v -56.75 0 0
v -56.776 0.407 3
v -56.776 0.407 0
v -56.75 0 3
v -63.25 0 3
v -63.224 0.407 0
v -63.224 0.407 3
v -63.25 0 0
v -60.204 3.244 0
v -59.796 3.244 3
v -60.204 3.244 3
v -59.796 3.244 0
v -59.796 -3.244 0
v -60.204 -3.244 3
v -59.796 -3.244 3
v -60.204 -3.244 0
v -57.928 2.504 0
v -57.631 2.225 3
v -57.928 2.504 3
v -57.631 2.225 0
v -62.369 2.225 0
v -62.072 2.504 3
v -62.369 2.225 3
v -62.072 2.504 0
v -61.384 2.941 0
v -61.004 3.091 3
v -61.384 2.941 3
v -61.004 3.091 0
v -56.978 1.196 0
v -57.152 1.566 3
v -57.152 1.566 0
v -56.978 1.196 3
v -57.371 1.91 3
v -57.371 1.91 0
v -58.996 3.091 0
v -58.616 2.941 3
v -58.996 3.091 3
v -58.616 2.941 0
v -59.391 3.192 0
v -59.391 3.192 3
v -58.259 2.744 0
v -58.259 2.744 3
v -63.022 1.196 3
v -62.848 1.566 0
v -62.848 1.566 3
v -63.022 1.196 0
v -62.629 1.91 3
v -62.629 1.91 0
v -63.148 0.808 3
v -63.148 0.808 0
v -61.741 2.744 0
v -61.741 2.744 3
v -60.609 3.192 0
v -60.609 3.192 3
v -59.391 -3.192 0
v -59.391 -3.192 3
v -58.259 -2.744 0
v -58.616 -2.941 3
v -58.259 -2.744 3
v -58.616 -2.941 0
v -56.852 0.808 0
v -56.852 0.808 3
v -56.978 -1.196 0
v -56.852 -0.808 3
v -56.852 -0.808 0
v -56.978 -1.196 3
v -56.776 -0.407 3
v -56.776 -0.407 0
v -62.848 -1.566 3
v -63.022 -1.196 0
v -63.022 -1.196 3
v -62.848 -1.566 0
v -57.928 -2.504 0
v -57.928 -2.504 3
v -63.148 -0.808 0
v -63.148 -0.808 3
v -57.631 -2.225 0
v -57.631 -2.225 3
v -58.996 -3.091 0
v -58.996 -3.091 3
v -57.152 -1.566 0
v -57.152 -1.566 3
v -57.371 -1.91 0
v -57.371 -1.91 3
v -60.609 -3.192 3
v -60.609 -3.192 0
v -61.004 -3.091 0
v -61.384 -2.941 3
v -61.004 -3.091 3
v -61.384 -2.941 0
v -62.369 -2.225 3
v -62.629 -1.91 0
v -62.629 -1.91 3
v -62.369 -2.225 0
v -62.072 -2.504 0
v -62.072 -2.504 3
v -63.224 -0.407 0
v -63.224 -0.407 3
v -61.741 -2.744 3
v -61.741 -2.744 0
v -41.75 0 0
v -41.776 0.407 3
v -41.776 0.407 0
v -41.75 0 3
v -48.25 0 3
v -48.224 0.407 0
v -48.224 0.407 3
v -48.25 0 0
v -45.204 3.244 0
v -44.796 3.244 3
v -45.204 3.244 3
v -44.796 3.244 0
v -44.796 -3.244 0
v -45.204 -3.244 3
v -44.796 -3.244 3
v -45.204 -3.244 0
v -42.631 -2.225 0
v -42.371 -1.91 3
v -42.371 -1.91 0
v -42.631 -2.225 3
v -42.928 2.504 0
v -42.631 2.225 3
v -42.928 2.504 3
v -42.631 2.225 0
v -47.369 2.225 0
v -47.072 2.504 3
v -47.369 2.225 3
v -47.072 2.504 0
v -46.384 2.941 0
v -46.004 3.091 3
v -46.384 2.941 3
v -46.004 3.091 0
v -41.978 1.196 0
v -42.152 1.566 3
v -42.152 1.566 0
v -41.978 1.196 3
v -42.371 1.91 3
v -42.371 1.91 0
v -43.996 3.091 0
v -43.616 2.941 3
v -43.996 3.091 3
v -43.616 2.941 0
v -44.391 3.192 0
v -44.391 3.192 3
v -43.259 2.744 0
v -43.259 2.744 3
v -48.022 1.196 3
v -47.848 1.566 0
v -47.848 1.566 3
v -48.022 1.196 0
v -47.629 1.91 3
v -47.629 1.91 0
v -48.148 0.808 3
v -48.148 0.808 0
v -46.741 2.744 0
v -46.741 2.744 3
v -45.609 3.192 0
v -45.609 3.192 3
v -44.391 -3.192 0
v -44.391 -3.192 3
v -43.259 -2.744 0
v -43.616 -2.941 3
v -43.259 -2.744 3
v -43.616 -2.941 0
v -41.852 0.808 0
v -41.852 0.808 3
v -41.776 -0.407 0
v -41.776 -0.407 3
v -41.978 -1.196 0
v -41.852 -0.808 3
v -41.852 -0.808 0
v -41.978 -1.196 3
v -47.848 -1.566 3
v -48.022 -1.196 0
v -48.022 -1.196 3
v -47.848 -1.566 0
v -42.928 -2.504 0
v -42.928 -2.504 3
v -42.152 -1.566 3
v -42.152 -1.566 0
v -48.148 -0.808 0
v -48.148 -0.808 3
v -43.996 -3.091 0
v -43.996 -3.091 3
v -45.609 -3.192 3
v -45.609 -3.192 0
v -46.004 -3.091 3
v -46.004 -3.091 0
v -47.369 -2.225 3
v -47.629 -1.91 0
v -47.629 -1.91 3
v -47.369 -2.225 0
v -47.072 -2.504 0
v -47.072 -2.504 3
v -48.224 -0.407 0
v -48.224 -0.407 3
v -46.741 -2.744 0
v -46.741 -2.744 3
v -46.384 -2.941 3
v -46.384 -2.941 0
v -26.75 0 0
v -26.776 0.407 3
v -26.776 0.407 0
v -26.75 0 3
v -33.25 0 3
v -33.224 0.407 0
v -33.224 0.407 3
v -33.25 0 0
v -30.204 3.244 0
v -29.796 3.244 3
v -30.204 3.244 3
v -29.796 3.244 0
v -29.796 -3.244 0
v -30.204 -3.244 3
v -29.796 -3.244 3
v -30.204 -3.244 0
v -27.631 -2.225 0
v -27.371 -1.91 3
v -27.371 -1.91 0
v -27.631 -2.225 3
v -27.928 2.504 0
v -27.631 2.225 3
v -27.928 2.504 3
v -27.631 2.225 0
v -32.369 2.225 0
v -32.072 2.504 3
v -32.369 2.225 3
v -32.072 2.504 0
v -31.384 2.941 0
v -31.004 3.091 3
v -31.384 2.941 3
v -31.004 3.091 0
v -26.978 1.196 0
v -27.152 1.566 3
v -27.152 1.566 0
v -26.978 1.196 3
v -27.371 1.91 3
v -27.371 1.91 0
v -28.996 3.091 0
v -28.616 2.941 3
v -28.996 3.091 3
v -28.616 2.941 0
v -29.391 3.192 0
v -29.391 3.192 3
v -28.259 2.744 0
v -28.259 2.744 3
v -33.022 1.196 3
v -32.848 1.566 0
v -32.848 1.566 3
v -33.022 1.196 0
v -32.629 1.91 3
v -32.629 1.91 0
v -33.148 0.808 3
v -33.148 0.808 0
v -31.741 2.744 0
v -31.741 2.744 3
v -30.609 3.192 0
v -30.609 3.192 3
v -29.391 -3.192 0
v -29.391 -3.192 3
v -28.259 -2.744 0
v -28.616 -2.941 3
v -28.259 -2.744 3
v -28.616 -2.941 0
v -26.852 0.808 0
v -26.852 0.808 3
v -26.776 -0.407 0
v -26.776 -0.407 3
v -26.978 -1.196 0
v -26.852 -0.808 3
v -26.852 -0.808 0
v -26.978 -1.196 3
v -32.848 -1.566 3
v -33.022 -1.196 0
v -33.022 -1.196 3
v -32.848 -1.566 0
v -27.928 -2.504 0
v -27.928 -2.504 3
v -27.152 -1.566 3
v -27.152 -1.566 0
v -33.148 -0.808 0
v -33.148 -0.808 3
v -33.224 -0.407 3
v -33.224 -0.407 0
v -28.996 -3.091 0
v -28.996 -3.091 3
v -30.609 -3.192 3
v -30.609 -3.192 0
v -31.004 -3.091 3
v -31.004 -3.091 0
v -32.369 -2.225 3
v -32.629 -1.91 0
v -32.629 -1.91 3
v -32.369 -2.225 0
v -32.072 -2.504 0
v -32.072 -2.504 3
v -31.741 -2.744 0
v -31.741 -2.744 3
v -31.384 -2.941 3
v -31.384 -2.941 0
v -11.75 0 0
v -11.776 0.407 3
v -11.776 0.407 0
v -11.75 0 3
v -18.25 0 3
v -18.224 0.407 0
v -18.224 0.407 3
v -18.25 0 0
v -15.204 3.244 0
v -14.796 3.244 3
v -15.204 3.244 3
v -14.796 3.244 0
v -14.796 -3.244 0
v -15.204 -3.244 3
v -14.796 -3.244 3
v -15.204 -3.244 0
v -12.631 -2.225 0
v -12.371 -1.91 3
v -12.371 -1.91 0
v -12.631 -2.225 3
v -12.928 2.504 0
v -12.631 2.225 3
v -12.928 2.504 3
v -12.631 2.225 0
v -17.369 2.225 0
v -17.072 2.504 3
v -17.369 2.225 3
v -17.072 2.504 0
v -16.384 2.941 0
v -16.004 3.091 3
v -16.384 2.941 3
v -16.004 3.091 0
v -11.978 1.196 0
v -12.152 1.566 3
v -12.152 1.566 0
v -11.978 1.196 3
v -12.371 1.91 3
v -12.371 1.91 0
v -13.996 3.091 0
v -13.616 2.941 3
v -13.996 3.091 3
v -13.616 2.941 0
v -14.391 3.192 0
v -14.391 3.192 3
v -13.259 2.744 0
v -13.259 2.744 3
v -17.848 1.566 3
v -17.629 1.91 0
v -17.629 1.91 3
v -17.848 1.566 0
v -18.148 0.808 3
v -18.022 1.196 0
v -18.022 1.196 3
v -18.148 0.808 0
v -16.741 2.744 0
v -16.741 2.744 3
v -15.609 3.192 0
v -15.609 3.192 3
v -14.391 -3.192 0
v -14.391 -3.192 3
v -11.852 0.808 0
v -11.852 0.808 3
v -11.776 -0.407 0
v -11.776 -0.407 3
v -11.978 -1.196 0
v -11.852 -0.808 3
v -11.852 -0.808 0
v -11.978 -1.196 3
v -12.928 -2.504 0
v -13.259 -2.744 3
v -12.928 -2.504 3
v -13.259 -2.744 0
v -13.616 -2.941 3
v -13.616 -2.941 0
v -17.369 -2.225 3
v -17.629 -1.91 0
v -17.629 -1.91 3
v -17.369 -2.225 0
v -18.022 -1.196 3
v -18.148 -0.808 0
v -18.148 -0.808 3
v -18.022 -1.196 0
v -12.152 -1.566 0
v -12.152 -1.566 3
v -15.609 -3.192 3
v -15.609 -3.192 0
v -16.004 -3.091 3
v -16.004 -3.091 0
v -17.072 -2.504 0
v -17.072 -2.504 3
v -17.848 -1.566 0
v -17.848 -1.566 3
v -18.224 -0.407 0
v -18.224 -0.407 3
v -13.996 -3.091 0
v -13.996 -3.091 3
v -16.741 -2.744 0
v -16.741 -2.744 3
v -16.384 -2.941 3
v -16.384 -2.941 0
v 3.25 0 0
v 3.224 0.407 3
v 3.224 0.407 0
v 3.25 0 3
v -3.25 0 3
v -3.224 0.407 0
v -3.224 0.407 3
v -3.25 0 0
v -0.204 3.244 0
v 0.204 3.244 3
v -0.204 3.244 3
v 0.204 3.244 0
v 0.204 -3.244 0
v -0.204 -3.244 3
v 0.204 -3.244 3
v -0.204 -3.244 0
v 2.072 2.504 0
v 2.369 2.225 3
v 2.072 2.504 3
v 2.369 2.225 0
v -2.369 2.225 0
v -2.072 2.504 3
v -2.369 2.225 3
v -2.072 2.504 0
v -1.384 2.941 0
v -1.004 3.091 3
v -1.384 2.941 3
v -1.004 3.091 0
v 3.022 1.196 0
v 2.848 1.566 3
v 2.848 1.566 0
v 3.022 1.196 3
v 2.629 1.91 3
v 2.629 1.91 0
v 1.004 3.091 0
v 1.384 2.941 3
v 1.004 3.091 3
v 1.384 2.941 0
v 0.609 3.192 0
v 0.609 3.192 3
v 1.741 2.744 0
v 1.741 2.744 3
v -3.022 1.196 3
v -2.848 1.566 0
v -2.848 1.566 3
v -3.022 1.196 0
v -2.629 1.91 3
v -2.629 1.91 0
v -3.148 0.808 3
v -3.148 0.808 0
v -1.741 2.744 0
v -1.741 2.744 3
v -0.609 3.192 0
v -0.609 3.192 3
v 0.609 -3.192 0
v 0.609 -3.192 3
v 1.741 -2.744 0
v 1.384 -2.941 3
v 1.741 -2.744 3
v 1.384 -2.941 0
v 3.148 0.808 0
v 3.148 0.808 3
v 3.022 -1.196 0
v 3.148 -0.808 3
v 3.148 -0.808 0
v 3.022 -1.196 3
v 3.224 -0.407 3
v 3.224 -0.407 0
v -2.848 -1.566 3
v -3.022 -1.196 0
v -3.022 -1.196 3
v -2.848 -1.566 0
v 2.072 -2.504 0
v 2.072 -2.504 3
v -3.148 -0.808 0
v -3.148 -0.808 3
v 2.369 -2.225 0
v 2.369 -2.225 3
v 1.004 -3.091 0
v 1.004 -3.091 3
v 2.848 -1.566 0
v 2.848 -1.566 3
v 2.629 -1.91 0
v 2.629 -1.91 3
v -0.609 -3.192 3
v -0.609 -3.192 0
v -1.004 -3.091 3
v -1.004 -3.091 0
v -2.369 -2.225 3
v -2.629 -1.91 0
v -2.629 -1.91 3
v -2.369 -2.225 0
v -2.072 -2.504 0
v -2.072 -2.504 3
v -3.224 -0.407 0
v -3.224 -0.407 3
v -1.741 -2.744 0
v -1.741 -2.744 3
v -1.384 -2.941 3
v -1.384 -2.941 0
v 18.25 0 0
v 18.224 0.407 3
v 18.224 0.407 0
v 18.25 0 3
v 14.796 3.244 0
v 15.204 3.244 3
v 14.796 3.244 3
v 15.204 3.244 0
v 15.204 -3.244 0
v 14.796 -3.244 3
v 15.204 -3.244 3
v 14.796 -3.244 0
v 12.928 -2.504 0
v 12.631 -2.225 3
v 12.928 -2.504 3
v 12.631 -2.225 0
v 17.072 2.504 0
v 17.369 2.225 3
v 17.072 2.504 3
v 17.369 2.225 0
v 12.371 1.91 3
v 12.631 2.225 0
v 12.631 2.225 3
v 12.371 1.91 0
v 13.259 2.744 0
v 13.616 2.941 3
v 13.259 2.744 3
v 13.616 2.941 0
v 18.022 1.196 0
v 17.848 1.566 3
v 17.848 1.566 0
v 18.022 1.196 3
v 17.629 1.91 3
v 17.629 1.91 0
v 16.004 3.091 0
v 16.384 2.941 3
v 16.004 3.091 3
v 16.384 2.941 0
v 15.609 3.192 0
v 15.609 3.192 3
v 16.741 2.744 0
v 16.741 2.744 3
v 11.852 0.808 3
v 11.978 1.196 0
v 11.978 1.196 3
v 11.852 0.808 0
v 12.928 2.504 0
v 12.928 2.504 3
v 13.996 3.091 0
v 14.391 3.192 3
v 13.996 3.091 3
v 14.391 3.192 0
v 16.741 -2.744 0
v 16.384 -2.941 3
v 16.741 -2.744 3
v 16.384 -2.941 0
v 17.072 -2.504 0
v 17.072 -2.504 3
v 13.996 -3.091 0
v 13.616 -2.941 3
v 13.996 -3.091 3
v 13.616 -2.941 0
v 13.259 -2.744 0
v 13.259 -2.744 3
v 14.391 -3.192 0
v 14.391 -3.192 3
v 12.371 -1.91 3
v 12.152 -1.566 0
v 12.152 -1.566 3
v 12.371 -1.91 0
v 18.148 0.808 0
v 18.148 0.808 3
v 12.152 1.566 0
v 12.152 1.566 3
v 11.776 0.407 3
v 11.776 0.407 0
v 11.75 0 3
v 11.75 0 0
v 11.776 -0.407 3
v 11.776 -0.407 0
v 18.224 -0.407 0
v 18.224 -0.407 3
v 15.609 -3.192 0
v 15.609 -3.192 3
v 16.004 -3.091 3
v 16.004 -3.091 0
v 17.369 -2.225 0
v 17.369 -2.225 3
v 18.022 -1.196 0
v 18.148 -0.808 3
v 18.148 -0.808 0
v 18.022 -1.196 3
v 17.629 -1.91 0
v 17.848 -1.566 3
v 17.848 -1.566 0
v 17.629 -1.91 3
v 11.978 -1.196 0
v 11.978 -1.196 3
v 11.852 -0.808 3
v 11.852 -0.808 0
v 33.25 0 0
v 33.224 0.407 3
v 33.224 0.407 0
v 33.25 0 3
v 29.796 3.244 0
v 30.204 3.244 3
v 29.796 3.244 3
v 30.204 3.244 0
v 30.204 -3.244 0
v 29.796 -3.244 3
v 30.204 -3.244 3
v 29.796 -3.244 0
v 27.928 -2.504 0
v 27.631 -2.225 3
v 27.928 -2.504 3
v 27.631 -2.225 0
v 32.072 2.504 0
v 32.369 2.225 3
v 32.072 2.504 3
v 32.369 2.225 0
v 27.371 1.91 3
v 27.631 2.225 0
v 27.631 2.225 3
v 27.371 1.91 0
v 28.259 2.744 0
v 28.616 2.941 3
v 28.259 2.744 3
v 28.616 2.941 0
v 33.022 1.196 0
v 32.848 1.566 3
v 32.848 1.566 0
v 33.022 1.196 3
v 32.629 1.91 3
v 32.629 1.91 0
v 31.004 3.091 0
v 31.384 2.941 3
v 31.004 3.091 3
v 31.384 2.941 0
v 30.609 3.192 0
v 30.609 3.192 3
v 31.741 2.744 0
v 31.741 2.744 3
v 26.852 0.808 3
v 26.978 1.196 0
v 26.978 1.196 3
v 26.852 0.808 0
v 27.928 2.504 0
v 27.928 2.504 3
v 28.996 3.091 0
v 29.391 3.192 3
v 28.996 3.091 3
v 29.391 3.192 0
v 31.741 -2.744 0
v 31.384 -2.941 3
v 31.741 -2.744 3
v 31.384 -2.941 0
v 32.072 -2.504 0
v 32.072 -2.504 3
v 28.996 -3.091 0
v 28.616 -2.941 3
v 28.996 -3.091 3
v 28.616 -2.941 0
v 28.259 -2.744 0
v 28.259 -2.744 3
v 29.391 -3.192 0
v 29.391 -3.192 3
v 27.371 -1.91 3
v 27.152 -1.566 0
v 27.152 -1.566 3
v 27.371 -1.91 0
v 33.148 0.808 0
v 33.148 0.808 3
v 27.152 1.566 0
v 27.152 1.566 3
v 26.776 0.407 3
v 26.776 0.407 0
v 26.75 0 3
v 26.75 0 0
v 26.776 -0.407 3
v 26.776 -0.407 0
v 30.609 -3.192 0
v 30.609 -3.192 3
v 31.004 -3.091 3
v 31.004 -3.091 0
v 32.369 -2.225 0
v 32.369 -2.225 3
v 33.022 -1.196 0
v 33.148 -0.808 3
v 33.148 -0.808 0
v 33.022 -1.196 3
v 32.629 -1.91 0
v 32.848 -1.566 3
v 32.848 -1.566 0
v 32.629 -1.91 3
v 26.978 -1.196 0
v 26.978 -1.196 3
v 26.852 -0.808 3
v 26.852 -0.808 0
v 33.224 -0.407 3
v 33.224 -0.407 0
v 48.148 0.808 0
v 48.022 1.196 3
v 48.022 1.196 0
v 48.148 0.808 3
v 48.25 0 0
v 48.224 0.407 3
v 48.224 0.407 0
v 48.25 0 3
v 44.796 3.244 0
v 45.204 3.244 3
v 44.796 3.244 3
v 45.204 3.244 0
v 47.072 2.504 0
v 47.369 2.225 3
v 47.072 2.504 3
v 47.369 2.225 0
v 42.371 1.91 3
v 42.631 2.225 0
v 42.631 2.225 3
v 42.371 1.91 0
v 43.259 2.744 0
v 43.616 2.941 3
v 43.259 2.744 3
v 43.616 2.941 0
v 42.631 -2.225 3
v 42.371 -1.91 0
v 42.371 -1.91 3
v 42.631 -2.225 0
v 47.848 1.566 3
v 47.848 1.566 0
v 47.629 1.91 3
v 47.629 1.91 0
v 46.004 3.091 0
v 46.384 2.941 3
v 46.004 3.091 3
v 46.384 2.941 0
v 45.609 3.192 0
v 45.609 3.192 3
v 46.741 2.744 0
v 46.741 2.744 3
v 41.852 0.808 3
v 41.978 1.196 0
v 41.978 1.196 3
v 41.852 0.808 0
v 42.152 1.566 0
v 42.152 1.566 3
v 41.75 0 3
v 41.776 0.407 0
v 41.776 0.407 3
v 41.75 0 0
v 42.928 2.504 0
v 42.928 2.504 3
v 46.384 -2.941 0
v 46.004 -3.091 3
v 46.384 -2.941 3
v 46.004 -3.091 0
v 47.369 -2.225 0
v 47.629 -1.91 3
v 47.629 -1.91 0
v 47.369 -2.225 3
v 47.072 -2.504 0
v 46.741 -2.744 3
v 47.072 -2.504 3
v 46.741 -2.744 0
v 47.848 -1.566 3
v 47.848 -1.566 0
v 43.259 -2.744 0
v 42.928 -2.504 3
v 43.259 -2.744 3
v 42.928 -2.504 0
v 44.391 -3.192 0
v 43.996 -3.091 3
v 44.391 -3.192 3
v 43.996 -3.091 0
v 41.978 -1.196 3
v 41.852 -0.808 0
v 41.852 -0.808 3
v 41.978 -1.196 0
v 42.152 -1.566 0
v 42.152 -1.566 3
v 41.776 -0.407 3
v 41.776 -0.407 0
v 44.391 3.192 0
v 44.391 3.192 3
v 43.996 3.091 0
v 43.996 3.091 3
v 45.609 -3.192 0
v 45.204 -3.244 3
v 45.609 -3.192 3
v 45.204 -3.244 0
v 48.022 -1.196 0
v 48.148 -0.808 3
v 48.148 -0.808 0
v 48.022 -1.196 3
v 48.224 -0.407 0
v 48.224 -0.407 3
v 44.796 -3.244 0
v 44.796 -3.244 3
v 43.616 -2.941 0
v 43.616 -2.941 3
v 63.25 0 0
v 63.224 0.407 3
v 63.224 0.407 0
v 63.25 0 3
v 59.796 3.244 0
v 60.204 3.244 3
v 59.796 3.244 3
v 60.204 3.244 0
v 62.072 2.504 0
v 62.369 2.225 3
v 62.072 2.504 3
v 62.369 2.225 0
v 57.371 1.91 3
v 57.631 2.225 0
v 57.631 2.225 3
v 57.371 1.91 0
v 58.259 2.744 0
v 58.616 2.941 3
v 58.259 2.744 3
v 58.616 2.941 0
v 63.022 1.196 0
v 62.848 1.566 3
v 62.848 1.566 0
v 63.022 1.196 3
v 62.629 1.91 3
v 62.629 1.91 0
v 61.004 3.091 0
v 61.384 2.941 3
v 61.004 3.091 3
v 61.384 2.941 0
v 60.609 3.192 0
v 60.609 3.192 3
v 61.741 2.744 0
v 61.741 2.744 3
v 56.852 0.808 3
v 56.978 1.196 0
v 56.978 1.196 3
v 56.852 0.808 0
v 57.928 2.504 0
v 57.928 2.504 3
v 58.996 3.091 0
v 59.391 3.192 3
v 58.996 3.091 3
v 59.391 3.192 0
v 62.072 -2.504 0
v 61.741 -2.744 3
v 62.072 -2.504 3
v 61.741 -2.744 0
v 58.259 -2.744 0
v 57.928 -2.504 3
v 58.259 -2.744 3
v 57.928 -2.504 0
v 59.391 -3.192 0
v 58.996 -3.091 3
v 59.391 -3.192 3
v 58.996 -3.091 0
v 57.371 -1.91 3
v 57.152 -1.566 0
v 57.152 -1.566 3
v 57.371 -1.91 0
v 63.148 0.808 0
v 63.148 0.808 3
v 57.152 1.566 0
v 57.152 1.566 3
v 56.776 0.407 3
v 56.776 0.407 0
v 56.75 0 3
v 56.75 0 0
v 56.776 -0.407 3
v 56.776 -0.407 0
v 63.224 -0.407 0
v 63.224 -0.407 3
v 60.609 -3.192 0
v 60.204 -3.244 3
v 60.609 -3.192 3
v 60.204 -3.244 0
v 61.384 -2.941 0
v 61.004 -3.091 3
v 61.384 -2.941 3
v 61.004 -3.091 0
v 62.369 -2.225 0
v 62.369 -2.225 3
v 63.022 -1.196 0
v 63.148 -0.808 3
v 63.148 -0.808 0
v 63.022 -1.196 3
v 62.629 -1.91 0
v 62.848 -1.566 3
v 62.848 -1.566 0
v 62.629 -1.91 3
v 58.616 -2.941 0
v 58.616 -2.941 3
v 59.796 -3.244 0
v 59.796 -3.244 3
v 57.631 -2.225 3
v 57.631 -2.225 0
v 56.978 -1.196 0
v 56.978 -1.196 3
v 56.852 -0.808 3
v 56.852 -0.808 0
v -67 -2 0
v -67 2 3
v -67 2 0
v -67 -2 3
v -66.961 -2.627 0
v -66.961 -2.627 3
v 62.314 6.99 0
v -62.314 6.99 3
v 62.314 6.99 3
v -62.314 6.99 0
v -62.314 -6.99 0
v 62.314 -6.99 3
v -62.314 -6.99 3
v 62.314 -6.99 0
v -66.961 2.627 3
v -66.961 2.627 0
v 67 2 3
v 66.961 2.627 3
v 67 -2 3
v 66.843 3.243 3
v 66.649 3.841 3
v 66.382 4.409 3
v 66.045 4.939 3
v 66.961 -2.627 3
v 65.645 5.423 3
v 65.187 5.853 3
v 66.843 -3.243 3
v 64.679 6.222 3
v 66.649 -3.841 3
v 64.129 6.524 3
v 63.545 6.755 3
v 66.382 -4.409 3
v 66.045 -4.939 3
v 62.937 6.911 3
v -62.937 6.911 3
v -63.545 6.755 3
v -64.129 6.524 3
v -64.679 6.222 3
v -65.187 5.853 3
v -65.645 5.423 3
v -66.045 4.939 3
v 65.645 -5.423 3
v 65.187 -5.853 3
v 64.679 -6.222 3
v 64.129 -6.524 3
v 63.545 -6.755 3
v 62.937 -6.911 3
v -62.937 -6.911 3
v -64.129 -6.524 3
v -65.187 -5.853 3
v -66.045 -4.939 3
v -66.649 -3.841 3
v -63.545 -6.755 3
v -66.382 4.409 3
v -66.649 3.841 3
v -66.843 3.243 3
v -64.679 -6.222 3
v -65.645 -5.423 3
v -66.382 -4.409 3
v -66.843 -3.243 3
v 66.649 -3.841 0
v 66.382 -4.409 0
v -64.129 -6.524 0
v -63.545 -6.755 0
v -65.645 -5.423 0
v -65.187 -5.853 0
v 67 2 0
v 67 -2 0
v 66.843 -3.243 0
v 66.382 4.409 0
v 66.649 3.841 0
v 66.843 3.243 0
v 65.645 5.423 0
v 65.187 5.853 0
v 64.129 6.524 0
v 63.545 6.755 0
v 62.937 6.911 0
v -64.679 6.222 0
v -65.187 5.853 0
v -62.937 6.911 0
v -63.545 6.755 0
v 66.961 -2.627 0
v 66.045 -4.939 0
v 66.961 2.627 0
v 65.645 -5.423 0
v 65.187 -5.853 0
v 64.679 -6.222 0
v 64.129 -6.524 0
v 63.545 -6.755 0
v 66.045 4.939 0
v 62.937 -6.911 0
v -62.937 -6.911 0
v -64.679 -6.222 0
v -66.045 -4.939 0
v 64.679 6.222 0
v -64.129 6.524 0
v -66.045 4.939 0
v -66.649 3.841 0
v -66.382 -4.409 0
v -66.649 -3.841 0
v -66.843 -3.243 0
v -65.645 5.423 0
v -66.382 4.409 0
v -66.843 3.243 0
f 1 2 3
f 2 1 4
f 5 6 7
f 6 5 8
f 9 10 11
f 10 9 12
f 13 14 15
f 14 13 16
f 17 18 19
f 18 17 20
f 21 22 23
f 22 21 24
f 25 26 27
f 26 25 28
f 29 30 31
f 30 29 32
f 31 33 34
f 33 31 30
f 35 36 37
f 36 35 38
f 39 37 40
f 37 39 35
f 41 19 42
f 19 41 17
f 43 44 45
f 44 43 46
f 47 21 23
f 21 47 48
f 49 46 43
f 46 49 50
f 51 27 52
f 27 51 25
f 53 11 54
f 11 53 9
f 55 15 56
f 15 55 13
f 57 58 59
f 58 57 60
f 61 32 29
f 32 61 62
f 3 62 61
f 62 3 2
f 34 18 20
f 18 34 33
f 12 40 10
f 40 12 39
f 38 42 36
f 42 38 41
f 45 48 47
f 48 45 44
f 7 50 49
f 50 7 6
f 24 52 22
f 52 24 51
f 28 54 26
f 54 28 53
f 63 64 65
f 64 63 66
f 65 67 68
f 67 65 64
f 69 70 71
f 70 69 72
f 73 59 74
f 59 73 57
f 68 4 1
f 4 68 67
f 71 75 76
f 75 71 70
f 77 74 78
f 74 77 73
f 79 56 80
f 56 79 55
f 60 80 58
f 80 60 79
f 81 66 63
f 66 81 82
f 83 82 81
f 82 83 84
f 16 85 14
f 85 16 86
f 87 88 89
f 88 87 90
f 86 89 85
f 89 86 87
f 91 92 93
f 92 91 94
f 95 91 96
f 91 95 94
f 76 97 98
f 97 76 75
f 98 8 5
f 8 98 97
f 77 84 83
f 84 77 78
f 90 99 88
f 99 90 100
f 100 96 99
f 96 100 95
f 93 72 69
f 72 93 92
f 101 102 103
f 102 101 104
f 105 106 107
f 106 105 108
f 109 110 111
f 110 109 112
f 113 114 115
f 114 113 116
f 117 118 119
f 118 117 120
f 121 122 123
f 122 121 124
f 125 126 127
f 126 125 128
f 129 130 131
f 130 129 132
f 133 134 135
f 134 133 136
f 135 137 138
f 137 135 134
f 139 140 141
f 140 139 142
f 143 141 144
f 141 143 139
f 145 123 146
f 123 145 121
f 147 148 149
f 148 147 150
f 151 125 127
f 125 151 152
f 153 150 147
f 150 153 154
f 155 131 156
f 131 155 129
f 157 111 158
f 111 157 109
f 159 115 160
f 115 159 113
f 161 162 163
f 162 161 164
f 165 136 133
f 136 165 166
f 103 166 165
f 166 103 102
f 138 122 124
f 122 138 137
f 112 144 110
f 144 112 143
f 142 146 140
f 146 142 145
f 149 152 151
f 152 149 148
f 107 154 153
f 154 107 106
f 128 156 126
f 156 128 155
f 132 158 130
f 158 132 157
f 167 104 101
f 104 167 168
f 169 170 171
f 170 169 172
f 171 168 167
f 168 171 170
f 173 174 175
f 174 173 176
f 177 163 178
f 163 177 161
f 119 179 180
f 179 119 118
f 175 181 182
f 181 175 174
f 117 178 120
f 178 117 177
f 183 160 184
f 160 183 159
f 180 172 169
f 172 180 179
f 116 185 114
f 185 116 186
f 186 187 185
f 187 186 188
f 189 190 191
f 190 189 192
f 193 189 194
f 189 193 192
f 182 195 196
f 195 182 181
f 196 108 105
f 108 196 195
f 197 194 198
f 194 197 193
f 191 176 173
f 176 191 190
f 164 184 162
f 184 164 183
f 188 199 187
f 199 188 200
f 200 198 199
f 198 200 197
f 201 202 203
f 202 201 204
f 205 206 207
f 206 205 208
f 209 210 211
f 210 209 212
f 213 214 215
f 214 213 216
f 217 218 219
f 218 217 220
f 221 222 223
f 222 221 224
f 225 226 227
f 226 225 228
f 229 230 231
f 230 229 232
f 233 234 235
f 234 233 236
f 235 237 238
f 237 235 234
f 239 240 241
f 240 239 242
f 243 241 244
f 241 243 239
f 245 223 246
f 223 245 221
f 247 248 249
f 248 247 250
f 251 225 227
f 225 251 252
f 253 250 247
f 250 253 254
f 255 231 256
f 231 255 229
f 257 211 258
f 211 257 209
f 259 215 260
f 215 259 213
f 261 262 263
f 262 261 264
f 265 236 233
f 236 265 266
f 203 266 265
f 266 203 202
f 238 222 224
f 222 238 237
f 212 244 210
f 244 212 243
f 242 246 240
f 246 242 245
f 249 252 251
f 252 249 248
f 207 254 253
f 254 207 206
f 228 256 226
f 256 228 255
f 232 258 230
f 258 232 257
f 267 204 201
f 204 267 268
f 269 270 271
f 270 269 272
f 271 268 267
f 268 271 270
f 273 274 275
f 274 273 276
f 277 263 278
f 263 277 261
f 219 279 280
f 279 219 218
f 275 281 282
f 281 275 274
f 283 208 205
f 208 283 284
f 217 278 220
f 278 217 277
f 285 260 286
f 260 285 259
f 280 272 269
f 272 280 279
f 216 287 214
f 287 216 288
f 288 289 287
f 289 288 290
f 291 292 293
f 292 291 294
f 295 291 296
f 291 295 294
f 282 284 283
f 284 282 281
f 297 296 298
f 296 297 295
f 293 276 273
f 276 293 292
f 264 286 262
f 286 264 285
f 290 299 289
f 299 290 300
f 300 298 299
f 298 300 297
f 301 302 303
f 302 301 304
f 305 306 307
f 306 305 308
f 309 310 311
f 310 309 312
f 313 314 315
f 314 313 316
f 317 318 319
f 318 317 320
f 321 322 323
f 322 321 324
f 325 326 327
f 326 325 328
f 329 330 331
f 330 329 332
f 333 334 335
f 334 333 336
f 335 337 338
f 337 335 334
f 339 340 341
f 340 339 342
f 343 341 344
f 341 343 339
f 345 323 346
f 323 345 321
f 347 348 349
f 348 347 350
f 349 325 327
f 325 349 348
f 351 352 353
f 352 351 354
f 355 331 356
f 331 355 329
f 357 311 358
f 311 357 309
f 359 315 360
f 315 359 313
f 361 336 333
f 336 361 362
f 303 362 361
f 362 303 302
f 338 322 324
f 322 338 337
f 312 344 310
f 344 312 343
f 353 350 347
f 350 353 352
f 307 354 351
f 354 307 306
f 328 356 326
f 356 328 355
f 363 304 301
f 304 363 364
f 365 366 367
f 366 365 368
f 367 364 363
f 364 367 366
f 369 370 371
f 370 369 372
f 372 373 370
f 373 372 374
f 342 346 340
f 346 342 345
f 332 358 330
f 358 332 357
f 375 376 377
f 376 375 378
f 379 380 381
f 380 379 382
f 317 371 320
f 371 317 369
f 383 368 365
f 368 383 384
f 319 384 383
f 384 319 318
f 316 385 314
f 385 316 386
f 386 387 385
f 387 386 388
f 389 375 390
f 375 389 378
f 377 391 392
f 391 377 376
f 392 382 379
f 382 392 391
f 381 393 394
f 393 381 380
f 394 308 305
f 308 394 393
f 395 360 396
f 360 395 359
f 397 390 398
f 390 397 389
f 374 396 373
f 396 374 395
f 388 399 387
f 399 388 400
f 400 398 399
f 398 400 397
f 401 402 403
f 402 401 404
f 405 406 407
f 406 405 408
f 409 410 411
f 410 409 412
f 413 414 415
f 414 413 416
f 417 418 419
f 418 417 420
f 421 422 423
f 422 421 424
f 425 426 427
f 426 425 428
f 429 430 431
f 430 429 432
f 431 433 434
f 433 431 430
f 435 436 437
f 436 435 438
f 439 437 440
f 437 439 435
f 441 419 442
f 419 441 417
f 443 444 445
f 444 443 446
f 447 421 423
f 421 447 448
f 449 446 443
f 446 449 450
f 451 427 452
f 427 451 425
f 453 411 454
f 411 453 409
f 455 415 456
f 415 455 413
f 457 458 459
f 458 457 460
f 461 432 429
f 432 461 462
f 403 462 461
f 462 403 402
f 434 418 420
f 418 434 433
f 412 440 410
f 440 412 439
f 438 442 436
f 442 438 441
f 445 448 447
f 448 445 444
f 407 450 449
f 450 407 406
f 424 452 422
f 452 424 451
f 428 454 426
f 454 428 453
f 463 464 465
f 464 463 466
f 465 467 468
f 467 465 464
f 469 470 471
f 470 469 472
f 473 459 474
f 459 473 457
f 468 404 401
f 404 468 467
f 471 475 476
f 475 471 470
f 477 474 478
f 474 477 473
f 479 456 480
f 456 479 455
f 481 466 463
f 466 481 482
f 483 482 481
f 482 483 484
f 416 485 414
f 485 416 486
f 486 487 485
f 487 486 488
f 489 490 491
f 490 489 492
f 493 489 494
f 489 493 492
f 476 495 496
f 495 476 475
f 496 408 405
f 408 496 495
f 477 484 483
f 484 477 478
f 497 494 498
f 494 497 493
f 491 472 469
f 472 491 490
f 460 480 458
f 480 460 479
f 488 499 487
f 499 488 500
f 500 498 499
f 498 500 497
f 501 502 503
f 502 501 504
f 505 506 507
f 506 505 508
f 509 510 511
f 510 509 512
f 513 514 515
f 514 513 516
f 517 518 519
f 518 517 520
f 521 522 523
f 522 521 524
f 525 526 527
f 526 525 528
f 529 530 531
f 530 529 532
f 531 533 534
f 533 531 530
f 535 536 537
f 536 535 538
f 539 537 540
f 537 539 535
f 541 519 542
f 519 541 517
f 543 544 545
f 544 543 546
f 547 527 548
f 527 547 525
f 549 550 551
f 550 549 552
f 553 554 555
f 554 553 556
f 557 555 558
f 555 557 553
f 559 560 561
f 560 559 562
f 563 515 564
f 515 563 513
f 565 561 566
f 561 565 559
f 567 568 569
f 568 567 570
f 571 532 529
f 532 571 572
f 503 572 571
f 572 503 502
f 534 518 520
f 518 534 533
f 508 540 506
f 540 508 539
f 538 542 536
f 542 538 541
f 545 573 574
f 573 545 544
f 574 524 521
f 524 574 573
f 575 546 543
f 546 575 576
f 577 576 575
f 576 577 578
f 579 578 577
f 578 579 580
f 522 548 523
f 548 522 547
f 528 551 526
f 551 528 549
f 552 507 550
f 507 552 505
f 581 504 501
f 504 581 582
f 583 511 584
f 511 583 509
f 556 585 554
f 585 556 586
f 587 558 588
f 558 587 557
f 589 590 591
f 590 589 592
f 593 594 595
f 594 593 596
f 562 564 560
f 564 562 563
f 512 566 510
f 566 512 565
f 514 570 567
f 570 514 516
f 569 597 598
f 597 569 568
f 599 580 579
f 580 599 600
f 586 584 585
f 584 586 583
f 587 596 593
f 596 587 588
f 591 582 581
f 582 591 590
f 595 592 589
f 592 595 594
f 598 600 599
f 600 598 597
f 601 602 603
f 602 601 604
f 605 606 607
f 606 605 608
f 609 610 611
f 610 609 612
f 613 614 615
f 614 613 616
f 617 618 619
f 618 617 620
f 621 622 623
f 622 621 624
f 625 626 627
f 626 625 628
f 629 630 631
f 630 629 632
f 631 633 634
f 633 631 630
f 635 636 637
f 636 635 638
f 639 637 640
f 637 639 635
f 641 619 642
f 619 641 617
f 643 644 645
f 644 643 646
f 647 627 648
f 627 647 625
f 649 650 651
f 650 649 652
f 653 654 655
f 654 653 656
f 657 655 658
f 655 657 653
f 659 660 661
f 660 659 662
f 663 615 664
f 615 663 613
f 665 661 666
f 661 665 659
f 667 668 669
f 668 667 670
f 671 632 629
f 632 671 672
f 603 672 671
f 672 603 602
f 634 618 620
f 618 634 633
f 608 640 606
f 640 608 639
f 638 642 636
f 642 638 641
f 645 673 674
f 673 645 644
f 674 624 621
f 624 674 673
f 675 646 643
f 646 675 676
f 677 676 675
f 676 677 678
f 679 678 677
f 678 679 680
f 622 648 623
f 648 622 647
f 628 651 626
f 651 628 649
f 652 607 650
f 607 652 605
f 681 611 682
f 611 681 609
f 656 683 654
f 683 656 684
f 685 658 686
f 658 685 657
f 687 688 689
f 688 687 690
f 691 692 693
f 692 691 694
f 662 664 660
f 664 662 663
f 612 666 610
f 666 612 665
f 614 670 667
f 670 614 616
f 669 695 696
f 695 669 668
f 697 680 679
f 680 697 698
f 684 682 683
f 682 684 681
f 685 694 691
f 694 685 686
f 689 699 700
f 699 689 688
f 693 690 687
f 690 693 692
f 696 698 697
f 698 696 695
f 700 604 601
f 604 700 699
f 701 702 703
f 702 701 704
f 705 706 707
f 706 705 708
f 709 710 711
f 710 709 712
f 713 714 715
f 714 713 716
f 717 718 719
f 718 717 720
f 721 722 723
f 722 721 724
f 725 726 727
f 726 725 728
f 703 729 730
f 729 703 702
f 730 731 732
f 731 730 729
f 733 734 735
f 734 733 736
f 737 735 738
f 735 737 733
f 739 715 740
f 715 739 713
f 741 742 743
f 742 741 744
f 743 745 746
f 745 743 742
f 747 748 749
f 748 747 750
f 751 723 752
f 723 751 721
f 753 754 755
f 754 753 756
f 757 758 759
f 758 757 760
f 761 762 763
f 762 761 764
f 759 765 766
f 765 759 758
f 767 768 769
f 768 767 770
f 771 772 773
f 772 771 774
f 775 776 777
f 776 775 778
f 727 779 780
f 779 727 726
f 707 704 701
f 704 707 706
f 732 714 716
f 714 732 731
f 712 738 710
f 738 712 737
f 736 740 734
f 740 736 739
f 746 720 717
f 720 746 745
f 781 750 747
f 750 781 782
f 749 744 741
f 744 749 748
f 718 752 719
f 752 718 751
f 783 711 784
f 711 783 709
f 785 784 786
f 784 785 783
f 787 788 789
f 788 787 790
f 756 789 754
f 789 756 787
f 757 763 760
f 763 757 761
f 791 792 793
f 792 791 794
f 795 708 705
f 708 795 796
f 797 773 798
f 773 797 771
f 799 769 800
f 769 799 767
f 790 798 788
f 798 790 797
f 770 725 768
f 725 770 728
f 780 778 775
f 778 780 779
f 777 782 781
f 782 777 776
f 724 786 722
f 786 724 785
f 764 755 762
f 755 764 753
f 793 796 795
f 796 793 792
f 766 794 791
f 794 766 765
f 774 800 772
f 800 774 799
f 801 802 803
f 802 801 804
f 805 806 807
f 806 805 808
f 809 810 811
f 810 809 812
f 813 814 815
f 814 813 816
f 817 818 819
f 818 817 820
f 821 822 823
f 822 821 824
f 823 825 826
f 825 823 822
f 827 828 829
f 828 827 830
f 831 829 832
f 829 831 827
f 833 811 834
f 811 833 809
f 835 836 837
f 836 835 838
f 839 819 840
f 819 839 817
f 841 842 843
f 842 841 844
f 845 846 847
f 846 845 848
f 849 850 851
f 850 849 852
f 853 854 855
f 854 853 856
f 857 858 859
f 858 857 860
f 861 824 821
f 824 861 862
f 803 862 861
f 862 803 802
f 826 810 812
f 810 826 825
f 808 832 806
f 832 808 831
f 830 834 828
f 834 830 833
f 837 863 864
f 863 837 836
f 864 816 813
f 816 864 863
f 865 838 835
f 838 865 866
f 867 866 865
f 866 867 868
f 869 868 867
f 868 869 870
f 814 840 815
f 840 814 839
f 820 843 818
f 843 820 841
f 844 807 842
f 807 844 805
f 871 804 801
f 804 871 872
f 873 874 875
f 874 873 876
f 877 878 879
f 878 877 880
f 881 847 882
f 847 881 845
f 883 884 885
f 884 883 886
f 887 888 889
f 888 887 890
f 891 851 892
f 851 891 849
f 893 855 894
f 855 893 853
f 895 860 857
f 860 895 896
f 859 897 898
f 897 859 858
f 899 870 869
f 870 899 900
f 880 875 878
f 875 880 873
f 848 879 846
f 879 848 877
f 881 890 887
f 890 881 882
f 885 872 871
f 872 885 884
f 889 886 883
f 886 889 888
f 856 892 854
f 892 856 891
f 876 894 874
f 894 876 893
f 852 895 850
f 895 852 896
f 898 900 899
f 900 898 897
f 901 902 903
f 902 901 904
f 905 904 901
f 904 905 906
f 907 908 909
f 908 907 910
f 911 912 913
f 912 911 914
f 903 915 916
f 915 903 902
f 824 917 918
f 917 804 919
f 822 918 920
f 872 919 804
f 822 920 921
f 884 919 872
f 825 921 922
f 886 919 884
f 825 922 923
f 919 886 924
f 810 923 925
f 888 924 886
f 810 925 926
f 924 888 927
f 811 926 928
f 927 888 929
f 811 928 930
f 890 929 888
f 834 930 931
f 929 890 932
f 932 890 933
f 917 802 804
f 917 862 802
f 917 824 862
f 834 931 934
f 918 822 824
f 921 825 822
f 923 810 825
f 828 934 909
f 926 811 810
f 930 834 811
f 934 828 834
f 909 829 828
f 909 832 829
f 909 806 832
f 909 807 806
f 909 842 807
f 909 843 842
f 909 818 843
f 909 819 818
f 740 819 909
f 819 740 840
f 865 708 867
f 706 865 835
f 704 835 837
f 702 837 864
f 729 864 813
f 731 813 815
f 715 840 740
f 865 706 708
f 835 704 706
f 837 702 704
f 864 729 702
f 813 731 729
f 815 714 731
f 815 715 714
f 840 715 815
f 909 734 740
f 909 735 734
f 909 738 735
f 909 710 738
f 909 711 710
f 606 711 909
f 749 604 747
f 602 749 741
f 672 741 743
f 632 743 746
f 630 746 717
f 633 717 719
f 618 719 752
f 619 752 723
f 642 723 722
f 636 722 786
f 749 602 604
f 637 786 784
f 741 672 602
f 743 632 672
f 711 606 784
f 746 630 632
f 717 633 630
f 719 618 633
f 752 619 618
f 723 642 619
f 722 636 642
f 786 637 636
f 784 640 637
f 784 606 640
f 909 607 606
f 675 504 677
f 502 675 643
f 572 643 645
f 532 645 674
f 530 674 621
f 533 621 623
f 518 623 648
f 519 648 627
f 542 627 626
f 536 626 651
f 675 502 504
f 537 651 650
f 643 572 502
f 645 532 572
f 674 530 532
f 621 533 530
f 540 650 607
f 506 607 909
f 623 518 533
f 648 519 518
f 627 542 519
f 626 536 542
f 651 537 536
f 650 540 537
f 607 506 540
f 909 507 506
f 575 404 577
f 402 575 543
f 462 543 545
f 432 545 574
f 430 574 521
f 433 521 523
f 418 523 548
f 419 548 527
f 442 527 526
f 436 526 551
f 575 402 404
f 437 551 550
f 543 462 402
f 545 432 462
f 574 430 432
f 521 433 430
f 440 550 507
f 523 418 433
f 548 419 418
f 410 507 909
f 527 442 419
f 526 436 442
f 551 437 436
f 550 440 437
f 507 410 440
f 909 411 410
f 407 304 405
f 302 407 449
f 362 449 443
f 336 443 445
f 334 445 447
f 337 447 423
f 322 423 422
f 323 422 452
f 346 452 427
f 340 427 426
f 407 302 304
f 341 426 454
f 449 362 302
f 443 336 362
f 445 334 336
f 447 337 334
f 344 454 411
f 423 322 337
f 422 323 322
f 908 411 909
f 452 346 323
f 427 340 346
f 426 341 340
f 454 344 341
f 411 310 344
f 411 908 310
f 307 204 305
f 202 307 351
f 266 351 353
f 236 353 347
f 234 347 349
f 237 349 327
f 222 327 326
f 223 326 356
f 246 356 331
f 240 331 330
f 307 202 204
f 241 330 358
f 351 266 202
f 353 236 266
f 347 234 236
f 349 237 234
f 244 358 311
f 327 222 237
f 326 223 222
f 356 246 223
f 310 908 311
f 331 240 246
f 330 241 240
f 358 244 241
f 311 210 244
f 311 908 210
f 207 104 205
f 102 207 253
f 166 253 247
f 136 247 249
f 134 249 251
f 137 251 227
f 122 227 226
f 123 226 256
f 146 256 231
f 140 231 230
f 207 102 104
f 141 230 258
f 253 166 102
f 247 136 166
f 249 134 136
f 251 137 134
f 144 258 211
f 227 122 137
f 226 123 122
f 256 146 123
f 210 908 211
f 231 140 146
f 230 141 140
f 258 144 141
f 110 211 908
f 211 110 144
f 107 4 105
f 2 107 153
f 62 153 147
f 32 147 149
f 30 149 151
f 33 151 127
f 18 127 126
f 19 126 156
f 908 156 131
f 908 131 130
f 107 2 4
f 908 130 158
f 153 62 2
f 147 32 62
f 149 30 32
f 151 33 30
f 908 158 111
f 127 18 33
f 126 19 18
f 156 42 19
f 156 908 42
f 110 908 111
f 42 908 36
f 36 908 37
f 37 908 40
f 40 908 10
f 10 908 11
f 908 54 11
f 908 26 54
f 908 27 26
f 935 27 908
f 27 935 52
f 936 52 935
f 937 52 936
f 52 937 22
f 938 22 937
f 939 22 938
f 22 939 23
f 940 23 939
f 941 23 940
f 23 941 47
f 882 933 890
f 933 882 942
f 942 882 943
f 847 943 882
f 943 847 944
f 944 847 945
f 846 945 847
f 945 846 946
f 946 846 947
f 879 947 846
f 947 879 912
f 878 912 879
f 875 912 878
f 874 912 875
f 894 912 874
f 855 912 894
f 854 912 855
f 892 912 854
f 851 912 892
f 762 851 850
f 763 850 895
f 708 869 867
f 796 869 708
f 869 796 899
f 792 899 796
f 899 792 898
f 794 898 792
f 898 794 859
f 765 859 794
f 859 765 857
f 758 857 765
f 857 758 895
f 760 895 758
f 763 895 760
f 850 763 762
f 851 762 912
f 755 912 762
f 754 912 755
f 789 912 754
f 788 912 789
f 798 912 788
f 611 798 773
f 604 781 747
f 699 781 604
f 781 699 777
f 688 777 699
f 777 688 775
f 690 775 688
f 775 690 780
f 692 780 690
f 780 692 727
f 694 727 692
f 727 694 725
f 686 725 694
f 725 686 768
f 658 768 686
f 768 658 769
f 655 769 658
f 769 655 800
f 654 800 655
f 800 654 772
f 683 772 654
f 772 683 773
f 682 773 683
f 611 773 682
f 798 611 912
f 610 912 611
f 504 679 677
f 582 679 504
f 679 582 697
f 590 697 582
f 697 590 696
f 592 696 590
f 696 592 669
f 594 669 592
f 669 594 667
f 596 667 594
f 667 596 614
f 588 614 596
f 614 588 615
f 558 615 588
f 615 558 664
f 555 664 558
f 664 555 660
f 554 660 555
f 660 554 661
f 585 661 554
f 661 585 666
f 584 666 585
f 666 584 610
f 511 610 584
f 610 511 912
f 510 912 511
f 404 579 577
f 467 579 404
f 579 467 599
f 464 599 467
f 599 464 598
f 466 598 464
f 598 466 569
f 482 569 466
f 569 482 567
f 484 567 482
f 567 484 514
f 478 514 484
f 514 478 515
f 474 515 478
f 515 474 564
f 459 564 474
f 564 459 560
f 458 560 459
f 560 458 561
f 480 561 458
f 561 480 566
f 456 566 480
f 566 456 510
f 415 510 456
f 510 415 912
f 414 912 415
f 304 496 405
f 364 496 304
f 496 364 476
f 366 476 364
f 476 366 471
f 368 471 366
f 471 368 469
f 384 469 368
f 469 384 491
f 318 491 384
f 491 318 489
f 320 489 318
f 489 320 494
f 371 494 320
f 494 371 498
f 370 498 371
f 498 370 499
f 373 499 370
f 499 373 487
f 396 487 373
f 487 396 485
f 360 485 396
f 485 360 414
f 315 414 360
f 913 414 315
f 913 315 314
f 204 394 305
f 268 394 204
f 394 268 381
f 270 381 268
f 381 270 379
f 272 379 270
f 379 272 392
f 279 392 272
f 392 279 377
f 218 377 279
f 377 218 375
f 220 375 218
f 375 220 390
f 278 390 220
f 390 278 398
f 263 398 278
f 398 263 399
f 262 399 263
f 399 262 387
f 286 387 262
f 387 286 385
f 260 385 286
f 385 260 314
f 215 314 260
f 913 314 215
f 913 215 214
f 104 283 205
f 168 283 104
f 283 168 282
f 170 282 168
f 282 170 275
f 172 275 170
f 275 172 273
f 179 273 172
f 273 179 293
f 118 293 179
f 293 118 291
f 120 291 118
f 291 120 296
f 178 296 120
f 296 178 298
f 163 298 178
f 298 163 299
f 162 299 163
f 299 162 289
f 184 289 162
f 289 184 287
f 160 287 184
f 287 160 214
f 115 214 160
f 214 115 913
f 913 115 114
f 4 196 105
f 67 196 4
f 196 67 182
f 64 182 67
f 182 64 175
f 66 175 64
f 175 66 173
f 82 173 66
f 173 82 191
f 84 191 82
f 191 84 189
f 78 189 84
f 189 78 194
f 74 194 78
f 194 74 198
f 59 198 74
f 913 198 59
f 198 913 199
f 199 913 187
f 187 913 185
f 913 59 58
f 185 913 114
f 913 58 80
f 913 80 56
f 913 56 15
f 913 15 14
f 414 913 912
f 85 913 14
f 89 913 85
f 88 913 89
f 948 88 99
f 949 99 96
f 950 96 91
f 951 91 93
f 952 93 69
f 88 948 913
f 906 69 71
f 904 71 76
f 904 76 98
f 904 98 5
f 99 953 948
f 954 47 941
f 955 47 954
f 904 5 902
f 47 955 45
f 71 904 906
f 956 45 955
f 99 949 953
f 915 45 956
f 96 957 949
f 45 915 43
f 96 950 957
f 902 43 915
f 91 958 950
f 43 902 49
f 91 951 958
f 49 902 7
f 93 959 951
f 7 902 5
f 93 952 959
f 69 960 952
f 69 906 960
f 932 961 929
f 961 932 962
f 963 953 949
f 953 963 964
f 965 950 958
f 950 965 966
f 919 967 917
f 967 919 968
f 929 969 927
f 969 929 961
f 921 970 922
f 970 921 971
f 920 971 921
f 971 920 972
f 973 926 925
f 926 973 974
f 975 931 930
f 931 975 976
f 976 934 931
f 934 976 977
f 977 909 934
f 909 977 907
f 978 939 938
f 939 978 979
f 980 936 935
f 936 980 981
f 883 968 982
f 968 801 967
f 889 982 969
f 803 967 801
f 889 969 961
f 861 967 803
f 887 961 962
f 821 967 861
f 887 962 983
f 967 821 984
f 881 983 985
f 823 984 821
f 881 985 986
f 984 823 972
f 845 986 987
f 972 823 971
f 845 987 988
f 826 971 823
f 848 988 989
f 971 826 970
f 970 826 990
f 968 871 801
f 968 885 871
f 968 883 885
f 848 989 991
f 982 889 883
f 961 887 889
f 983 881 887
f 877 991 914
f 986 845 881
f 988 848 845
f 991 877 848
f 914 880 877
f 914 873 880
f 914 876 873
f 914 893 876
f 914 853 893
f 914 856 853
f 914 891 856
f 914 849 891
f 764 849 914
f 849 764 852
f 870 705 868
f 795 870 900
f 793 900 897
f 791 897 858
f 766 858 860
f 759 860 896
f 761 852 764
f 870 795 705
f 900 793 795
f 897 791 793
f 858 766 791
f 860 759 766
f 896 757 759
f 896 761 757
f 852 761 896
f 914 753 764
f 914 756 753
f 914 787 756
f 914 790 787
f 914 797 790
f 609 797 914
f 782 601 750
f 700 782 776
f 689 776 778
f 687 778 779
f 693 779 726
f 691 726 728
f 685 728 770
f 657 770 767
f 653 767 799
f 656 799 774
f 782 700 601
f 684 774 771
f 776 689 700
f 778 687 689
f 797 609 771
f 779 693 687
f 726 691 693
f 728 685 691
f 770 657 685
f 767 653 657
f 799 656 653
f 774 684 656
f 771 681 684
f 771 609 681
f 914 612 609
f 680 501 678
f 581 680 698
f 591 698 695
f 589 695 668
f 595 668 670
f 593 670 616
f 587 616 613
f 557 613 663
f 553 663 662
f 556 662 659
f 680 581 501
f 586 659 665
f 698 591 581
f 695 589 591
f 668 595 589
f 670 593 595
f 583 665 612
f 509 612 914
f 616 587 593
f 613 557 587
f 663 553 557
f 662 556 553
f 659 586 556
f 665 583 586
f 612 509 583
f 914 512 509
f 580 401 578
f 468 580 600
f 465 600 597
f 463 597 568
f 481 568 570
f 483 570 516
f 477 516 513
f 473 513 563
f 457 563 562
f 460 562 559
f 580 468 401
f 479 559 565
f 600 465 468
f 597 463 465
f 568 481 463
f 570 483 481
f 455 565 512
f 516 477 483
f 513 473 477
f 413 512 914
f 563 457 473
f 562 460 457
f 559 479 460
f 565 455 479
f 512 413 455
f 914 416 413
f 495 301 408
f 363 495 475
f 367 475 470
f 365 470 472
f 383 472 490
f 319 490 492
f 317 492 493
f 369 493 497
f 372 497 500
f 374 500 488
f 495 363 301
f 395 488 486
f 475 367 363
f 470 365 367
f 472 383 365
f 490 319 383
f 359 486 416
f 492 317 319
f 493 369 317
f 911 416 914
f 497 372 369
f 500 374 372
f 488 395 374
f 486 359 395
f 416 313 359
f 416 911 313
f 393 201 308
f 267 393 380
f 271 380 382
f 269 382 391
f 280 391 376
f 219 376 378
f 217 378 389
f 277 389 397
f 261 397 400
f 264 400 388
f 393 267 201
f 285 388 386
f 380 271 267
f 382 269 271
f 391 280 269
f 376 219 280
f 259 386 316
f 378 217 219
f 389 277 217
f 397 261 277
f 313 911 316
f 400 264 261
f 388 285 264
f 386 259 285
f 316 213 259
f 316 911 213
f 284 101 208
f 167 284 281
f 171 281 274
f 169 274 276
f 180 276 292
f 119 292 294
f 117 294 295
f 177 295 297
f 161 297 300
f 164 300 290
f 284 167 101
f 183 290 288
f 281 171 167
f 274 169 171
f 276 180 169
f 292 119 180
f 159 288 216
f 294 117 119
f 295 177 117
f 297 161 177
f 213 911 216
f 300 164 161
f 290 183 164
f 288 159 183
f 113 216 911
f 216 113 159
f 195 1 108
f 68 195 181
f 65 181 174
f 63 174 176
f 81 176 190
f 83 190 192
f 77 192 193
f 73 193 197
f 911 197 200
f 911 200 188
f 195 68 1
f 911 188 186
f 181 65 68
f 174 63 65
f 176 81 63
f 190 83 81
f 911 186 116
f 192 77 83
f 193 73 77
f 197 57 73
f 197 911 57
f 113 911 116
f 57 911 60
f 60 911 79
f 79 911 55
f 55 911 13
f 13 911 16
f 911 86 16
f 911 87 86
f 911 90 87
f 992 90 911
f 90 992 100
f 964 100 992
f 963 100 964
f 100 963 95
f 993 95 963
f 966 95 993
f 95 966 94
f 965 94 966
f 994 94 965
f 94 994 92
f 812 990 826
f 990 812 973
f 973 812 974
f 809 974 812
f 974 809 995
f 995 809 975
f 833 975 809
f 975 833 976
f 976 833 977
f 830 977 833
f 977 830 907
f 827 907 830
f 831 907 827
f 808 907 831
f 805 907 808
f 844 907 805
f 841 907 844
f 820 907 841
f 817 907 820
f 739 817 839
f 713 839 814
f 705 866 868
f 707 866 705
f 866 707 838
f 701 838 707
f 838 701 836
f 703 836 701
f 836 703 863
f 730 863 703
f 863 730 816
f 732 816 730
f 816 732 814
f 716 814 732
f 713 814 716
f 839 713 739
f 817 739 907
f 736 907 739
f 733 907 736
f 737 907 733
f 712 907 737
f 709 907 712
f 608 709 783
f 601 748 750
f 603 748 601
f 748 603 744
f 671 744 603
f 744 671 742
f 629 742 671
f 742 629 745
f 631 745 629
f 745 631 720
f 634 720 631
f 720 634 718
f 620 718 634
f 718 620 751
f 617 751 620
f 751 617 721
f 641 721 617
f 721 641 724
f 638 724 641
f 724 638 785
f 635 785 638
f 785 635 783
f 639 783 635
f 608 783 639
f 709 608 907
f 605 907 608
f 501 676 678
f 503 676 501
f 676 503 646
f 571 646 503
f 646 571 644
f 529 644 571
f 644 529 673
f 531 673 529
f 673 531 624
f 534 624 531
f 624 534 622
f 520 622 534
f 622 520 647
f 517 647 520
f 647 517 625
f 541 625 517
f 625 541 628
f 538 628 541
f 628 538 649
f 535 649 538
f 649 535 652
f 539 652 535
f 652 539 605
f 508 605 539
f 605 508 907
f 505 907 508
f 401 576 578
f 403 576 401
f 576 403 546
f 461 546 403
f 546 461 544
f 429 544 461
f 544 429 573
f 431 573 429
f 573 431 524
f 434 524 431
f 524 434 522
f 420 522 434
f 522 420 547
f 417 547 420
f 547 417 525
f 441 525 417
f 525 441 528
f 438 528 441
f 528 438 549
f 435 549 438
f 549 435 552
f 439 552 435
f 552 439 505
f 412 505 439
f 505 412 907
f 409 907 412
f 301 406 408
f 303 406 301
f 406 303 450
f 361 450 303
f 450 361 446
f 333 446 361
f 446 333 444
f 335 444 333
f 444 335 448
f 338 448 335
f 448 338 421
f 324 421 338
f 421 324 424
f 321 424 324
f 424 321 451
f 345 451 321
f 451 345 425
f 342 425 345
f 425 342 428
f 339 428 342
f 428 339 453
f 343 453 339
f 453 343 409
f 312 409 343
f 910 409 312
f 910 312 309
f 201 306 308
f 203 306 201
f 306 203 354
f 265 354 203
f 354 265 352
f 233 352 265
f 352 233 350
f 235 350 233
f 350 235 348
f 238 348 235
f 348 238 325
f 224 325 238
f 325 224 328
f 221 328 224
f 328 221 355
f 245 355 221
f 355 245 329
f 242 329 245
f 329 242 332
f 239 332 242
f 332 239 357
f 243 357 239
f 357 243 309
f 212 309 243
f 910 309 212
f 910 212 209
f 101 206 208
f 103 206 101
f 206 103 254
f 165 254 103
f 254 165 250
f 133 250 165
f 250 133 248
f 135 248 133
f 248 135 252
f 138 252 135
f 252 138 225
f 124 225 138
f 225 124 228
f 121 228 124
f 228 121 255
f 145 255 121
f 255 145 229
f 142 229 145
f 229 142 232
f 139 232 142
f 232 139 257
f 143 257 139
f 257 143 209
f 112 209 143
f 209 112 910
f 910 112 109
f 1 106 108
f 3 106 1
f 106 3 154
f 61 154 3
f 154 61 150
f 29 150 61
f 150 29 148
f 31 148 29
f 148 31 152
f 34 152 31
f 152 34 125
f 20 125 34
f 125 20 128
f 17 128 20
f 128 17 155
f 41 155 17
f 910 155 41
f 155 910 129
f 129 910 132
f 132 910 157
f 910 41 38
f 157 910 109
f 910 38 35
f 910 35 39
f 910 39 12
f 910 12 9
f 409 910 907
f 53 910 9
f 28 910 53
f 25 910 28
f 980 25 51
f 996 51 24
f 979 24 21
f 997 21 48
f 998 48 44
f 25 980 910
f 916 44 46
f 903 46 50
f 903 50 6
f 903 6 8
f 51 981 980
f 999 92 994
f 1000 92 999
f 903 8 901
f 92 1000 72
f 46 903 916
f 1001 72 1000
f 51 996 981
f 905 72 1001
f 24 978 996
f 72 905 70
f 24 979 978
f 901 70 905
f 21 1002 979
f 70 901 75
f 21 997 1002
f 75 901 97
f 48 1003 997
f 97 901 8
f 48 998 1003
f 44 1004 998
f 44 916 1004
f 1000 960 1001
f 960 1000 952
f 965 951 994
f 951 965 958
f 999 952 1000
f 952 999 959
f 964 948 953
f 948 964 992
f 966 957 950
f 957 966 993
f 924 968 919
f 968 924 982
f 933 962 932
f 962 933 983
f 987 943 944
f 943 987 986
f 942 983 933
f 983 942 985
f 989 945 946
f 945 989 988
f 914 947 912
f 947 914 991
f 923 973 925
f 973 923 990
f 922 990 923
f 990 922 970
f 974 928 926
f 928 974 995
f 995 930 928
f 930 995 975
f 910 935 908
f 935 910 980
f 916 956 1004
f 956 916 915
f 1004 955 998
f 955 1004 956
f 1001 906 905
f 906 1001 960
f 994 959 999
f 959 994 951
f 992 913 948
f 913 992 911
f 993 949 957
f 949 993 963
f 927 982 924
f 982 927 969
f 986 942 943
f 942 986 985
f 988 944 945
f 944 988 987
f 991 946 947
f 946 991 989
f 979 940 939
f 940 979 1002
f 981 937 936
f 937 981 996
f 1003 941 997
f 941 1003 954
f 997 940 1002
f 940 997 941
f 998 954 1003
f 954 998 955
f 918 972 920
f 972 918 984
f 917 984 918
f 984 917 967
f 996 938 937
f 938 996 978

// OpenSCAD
$fn = 50;


difference() {
	union() {
		hull() {
			translate(v = [-62.0000000000, 2.0000000000, 0]) {
				cylinder(h = 3, r = 5);
			}
			translate(v = [62.0000000000, 2.0000000000, 0]) {
				cylinder(h = 3, r = 5);
			}
			translate(v = [-62.0000000000, -2.0000000000, 0]) {
				cylinder(h = 3, r = 5);
			}
			translate(v = [62.0000000000, -2.0000000000, 0]) {
				cylinder(h = 3, r = 5);
			}
		}
	}
	union() {
		translate(v = [-60.0000000000, 0.0000000000, -100.0000000000]) {
			cylinder(h = 200, r = 3.2500000000);
		}
		translate(v = [-45.0000000000, 0.0000000000, -100.0000000000]) {
			cylinder(h = 200, r = 3.2500000000);
		}
		translate(v = [-30.0000000000, 0.0000000000, -100.0000000000]) {
			cylinder(h = 200, r = 3.2500000000);
		}
		translate(v = [-15.0000000000, 0.0000000000, -100.0000000000]) {
			cylinder(h = 200, r = 3.2500000000);
		}
		translate(v = [0.0000000000, 0.0000000000, -100.0000000000]) {
			cylinder(h = 200, r = 3.2500000000);
		}
		translate(v = [15.0000000000, 0.0000000000, -100.0000000000]) {
			cylinder(h = 200, r = 3.2500000000);
		}
		translate(v = [30.0000000000, 0.0000000000, -100.0000000000]) {
			cylinder(h = 200, r = 3.2500000000);
		}
		translate(v = [45.0000000000, 0.0000000000, -100.0000000000]) {
			cylinder(h = 200, r = 3.2500000000);
		}
		translate(v = [60.0000000000, 0.0000000000, -100.0000000000]) {
			cylinder(h = 200, r = 3.2500000000);
		}
	}
}
